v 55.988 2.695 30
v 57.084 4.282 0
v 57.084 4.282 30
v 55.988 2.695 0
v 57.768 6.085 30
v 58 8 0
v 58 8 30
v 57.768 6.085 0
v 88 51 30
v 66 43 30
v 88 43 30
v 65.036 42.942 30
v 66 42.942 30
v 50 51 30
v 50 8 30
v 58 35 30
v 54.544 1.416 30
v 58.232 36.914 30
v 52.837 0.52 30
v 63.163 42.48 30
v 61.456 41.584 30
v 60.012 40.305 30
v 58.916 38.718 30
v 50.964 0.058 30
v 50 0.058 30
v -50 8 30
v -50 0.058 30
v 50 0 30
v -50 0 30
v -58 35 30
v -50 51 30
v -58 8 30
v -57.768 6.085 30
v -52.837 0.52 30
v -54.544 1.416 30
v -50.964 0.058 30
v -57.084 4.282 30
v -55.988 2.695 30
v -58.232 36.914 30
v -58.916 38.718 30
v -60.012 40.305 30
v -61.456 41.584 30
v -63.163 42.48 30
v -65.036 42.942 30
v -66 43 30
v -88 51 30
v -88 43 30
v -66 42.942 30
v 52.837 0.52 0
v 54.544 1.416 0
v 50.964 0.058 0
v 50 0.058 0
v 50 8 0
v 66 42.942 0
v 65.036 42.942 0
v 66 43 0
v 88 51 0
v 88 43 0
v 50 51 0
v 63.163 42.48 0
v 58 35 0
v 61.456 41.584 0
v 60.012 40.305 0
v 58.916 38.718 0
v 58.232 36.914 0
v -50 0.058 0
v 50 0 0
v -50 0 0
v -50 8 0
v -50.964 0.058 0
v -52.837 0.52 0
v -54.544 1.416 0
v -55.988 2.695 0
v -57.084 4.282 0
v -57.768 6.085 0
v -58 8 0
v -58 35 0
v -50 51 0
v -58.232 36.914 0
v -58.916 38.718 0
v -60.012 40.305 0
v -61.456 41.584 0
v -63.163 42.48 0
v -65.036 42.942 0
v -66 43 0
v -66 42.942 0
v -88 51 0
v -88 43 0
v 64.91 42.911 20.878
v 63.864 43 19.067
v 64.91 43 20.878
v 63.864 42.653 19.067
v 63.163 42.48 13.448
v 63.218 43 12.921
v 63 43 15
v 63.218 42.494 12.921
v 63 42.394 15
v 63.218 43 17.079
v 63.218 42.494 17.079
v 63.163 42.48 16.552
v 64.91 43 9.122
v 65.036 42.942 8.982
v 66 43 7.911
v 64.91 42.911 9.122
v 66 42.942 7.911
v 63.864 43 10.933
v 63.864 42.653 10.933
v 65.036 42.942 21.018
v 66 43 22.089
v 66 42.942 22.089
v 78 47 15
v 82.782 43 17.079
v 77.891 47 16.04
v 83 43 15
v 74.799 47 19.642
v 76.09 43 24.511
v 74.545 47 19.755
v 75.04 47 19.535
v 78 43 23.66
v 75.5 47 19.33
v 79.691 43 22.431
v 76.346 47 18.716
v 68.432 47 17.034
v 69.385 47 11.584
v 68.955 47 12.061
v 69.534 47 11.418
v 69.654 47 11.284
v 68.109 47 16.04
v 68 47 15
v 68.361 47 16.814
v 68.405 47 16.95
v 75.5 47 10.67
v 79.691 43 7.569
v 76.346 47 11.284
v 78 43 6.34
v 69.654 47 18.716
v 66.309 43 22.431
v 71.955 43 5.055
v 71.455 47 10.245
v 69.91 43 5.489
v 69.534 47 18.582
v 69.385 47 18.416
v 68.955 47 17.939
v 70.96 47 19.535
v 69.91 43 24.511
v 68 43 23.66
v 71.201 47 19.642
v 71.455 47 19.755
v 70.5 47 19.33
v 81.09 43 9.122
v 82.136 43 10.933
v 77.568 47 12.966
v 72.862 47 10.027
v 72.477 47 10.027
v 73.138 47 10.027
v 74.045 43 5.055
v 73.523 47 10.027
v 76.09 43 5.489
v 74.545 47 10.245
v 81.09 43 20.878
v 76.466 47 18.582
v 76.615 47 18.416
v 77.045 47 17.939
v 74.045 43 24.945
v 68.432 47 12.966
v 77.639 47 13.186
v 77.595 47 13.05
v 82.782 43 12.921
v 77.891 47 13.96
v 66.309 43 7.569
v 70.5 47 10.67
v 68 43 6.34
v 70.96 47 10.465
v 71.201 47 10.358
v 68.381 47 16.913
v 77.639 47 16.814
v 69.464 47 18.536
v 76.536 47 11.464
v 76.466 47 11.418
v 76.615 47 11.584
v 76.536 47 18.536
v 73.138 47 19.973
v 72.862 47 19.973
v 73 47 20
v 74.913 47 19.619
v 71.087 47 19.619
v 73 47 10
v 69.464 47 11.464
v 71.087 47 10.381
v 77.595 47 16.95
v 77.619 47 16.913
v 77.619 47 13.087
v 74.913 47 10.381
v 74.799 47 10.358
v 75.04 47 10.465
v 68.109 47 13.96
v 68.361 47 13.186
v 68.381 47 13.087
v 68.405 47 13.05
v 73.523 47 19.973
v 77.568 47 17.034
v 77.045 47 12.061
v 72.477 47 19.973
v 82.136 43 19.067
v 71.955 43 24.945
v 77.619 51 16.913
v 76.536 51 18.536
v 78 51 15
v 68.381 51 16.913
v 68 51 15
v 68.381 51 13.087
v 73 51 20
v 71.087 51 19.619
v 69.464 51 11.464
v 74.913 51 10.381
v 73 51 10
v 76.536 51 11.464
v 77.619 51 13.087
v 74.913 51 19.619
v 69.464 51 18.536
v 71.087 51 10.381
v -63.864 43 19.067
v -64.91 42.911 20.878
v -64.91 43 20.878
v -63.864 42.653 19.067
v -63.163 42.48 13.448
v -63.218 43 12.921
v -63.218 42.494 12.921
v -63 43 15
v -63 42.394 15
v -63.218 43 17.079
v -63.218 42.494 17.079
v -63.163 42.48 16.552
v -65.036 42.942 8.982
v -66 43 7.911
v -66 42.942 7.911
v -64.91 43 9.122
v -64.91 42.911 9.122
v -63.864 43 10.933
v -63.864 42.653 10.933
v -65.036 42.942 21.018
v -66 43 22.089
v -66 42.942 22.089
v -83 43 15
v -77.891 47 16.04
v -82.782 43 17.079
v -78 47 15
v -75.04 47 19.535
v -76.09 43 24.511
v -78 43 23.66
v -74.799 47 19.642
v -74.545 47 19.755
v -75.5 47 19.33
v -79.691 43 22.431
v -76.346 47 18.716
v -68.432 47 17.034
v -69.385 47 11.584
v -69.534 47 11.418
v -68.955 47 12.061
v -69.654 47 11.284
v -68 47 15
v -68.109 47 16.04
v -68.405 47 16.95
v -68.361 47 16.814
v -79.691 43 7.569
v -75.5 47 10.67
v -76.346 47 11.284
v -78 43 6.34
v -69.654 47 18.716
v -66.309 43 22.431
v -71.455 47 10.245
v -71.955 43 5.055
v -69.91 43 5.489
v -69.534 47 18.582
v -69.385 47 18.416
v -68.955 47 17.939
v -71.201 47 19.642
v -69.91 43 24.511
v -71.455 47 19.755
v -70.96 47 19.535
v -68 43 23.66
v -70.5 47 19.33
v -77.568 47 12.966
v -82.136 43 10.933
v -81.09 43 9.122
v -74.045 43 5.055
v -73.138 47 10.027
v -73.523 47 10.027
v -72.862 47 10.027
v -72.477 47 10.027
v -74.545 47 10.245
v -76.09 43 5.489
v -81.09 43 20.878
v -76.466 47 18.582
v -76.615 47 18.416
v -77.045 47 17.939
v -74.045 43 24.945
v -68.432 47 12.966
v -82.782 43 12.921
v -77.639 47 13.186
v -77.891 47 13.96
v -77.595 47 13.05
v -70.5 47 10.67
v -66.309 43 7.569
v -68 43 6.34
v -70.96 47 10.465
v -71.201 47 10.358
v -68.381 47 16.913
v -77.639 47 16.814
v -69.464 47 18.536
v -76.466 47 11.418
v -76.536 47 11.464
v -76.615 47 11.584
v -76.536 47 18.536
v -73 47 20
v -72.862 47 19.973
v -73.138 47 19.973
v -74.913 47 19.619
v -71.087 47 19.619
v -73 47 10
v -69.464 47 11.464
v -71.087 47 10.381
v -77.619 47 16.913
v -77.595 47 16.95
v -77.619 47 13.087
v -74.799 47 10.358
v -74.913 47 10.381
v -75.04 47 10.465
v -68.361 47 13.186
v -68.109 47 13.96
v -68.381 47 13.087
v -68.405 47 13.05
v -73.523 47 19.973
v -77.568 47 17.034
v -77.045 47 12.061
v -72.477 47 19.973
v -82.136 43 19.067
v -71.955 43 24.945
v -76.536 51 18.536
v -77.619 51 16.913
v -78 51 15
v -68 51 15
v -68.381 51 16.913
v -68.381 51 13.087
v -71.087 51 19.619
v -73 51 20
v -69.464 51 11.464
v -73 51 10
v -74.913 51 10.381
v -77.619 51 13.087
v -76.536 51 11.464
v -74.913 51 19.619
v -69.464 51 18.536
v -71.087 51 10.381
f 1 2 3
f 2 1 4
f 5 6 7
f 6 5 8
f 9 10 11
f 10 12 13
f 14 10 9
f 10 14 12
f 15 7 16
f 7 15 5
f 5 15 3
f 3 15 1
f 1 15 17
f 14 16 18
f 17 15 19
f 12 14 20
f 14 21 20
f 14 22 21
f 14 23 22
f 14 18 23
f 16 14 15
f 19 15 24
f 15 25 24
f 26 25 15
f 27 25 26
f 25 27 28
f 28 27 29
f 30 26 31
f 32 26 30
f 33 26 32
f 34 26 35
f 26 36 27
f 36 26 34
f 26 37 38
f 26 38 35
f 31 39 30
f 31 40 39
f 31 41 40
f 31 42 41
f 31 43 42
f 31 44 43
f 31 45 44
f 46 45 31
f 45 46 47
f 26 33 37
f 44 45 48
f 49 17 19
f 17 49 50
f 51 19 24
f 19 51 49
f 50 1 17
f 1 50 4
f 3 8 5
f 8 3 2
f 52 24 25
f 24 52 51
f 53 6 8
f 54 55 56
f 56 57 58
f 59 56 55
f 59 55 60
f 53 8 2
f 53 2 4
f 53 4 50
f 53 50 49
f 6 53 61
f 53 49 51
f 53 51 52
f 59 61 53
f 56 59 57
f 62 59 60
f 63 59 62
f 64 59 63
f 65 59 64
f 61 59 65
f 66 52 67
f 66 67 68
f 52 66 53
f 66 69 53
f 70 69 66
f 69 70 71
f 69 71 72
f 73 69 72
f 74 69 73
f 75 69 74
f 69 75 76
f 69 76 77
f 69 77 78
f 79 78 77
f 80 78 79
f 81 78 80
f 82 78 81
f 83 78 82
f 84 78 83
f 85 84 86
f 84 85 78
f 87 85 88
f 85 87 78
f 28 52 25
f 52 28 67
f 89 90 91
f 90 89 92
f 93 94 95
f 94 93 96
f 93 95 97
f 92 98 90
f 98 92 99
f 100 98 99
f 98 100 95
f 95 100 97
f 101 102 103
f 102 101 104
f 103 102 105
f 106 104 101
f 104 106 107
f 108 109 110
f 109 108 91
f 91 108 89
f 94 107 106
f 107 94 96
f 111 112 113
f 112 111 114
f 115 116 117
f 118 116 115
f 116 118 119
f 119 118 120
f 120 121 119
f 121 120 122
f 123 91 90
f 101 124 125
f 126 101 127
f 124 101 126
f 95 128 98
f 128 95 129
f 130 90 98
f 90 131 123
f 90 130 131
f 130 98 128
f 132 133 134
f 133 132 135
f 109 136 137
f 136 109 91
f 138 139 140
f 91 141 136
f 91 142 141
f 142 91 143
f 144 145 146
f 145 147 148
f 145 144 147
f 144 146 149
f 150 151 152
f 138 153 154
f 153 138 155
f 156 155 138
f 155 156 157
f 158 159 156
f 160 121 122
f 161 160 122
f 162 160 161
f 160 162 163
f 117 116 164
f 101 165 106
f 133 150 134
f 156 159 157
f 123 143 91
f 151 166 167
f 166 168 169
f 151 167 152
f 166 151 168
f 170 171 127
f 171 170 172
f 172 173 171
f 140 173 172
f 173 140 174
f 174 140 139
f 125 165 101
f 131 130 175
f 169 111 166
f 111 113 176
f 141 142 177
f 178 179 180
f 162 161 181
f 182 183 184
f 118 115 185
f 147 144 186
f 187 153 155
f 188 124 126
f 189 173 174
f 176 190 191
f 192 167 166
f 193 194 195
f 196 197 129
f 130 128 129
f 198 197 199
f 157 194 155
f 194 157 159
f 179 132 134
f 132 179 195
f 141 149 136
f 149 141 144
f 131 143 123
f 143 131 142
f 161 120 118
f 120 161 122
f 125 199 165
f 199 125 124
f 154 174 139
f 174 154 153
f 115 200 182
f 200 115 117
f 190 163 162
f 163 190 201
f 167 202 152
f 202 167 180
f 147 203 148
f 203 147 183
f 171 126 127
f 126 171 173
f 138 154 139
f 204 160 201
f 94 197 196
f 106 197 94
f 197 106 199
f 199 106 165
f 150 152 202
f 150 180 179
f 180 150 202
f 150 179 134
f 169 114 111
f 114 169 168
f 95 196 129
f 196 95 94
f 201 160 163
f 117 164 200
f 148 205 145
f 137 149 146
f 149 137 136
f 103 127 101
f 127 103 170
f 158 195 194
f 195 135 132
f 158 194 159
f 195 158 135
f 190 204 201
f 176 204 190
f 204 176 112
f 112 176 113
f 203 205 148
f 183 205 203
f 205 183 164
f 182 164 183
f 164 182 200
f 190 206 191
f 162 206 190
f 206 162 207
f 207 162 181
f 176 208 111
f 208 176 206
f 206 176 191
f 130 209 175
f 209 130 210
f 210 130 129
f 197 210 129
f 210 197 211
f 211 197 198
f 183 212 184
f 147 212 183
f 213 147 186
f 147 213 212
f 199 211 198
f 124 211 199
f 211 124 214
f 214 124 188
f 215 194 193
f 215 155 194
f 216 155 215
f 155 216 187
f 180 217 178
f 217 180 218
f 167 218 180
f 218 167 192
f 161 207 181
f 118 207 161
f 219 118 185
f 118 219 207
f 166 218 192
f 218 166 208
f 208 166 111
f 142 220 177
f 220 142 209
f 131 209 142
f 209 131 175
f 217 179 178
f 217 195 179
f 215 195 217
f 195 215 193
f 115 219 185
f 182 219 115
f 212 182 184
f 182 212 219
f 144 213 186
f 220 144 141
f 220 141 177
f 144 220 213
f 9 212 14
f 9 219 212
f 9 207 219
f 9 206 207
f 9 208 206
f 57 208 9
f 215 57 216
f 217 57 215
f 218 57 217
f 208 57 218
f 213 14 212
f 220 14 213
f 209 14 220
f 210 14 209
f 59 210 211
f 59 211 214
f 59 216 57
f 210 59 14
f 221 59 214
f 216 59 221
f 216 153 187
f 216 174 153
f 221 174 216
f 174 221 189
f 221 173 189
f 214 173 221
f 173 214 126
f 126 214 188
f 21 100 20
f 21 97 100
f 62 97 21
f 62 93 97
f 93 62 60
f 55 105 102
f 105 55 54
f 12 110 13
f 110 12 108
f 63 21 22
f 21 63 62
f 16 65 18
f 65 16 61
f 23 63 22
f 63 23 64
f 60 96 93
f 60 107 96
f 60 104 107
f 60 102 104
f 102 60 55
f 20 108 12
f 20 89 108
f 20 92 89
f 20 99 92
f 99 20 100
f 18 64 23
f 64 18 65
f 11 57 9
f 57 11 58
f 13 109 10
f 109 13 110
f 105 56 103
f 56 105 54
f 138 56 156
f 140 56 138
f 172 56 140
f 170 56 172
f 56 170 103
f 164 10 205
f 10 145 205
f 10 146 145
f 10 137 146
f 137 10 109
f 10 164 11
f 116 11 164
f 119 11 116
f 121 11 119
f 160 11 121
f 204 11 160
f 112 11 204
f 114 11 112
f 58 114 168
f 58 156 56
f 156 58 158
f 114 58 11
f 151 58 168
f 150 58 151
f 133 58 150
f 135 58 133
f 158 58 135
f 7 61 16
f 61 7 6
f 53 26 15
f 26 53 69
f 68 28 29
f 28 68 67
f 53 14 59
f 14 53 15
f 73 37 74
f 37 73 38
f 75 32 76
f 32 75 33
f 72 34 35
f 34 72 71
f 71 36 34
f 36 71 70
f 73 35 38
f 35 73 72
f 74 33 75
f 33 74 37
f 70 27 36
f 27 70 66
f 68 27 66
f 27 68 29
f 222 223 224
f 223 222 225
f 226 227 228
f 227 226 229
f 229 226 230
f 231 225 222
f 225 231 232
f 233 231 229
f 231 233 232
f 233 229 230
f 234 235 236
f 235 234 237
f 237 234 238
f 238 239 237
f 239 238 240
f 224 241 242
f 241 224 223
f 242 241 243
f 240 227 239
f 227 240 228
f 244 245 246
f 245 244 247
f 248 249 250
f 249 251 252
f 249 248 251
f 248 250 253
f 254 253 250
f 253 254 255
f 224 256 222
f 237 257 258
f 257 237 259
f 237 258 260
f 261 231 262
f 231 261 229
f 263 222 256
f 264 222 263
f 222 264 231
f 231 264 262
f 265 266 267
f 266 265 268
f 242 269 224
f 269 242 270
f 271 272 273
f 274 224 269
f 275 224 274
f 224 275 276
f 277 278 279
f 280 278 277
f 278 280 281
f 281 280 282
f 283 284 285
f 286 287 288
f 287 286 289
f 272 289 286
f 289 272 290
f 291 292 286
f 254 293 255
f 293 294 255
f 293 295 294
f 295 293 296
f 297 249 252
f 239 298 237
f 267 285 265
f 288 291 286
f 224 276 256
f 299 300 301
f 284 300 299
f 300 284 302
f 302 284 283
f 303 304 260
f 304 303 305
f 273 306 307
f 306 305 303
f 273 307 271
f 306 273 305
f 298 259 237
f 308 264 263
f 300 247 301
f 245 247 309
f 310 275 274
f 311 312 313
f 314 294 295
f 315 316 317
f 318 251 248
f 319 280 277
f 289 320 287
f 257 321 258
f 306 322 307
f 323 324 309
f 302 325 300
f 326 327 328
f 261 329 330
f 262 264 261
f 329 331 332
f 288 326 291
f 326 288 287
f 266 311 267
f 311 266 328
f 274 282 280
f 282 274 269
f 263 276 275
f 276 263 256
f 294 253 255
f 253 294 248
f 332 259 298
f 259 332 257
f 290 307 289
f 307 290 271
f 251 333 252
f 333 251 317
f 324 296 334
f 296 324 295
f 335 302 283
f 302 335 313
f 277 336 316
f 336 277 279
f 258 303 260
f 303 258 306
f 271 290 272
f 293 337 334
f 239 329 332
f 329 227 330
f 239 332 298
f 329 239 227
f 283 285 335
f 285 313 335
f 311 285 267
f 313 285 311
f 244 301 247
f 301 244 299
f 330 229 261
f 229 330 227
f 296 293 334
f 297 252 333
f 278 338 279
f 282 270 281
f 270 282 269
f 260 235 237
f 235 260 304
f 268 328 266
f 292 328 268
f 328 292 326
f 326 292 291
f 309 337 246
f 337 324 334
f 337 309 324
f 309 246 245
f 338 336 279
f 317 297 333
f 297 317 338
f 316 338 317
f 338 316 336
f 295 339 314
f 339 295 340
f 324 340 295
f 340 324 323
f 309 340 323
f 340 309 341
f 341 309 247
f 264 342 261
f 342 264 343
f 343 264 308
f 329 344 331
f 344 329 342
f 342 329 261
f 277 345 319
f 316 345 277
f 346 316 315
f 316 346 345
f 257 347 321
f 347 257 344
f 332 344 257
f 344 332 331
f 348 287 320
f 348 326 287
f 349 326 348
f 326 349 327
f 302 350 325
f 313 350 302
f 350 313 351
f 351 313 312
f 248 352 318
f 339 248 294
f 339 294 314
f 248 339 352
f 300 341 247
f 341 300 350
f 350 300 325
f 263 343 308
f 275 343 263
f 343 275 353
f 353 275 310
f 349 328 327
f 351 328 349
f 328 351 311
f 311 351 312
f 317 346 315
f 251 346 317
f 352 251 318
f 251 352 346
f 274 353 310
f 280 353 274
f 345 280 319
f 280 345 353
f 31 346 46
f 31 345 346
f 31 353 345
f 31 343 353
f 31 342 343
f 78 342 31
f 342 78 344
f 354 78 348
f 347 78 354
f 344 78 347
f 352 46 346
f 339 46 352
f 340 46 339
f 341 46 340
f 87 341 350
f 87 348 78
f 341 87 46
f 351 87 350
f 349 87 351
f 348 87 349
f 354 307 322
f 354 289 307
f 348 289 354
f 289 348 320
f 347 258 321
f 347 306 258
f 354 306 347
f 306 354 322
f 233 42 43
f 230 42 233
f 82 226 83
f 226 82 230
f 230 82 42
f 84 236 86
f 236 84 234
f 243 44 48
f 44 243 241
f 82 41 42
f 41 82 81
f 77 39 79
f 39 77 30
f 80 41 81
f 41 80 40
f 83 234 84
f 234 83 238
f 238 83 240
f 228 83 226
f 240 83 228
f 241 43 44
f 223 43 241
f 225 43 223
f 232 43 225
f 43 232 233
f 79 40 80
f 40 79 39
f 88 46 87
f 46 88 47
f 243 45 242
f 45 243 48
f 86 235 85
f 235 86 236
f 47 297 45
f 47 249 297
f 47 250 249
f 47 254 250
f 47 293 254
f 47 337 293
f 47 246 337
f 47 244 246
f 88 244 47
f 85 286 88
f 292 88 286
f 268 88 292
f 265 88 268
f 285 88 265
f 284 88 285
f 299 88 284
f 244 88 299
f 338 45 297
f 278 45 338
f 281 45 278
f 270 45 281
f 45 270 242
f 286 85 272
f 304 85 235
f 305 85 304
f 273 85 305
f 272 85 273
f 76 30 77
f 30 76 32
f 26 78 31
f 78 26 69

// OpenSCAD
use<polygear/shortcuts.scad>
width = 30;

for(m = [0:1:1]) {
    mirror([m,0,0]) {
        cube([50, 8, width]);
        Tx(50)
        Ty(8)
        cube([8, 43, width]);

        Tx(50)
        I() {
            Ty(8)
            cylinder(h = width, r1 = 8, r2 = 8);
            cube([8, 8, width]);
        }

        Ty(43-8)
        Tx(58)
        D() {
            cube([width, 16, width]);
            Tx(width/2)
            Tz(width/2)
            Ty(8)
            Rx(90){
                
                cylinder(h = 8, r1 = 10, r2 = 10);
                Tz(-4)
                cylinder(h = 4, r1 = 5, r2 = 10);
                Tz(-8)
                cylinder(h = 4, r1 = 5, r2 = 5);
            }
            Tx(8)
            cylinder(h = width, r1 = 8, r2 = 8);
            Tx(8)
            cube([width-8, 8, width]);
        }
    }
}
